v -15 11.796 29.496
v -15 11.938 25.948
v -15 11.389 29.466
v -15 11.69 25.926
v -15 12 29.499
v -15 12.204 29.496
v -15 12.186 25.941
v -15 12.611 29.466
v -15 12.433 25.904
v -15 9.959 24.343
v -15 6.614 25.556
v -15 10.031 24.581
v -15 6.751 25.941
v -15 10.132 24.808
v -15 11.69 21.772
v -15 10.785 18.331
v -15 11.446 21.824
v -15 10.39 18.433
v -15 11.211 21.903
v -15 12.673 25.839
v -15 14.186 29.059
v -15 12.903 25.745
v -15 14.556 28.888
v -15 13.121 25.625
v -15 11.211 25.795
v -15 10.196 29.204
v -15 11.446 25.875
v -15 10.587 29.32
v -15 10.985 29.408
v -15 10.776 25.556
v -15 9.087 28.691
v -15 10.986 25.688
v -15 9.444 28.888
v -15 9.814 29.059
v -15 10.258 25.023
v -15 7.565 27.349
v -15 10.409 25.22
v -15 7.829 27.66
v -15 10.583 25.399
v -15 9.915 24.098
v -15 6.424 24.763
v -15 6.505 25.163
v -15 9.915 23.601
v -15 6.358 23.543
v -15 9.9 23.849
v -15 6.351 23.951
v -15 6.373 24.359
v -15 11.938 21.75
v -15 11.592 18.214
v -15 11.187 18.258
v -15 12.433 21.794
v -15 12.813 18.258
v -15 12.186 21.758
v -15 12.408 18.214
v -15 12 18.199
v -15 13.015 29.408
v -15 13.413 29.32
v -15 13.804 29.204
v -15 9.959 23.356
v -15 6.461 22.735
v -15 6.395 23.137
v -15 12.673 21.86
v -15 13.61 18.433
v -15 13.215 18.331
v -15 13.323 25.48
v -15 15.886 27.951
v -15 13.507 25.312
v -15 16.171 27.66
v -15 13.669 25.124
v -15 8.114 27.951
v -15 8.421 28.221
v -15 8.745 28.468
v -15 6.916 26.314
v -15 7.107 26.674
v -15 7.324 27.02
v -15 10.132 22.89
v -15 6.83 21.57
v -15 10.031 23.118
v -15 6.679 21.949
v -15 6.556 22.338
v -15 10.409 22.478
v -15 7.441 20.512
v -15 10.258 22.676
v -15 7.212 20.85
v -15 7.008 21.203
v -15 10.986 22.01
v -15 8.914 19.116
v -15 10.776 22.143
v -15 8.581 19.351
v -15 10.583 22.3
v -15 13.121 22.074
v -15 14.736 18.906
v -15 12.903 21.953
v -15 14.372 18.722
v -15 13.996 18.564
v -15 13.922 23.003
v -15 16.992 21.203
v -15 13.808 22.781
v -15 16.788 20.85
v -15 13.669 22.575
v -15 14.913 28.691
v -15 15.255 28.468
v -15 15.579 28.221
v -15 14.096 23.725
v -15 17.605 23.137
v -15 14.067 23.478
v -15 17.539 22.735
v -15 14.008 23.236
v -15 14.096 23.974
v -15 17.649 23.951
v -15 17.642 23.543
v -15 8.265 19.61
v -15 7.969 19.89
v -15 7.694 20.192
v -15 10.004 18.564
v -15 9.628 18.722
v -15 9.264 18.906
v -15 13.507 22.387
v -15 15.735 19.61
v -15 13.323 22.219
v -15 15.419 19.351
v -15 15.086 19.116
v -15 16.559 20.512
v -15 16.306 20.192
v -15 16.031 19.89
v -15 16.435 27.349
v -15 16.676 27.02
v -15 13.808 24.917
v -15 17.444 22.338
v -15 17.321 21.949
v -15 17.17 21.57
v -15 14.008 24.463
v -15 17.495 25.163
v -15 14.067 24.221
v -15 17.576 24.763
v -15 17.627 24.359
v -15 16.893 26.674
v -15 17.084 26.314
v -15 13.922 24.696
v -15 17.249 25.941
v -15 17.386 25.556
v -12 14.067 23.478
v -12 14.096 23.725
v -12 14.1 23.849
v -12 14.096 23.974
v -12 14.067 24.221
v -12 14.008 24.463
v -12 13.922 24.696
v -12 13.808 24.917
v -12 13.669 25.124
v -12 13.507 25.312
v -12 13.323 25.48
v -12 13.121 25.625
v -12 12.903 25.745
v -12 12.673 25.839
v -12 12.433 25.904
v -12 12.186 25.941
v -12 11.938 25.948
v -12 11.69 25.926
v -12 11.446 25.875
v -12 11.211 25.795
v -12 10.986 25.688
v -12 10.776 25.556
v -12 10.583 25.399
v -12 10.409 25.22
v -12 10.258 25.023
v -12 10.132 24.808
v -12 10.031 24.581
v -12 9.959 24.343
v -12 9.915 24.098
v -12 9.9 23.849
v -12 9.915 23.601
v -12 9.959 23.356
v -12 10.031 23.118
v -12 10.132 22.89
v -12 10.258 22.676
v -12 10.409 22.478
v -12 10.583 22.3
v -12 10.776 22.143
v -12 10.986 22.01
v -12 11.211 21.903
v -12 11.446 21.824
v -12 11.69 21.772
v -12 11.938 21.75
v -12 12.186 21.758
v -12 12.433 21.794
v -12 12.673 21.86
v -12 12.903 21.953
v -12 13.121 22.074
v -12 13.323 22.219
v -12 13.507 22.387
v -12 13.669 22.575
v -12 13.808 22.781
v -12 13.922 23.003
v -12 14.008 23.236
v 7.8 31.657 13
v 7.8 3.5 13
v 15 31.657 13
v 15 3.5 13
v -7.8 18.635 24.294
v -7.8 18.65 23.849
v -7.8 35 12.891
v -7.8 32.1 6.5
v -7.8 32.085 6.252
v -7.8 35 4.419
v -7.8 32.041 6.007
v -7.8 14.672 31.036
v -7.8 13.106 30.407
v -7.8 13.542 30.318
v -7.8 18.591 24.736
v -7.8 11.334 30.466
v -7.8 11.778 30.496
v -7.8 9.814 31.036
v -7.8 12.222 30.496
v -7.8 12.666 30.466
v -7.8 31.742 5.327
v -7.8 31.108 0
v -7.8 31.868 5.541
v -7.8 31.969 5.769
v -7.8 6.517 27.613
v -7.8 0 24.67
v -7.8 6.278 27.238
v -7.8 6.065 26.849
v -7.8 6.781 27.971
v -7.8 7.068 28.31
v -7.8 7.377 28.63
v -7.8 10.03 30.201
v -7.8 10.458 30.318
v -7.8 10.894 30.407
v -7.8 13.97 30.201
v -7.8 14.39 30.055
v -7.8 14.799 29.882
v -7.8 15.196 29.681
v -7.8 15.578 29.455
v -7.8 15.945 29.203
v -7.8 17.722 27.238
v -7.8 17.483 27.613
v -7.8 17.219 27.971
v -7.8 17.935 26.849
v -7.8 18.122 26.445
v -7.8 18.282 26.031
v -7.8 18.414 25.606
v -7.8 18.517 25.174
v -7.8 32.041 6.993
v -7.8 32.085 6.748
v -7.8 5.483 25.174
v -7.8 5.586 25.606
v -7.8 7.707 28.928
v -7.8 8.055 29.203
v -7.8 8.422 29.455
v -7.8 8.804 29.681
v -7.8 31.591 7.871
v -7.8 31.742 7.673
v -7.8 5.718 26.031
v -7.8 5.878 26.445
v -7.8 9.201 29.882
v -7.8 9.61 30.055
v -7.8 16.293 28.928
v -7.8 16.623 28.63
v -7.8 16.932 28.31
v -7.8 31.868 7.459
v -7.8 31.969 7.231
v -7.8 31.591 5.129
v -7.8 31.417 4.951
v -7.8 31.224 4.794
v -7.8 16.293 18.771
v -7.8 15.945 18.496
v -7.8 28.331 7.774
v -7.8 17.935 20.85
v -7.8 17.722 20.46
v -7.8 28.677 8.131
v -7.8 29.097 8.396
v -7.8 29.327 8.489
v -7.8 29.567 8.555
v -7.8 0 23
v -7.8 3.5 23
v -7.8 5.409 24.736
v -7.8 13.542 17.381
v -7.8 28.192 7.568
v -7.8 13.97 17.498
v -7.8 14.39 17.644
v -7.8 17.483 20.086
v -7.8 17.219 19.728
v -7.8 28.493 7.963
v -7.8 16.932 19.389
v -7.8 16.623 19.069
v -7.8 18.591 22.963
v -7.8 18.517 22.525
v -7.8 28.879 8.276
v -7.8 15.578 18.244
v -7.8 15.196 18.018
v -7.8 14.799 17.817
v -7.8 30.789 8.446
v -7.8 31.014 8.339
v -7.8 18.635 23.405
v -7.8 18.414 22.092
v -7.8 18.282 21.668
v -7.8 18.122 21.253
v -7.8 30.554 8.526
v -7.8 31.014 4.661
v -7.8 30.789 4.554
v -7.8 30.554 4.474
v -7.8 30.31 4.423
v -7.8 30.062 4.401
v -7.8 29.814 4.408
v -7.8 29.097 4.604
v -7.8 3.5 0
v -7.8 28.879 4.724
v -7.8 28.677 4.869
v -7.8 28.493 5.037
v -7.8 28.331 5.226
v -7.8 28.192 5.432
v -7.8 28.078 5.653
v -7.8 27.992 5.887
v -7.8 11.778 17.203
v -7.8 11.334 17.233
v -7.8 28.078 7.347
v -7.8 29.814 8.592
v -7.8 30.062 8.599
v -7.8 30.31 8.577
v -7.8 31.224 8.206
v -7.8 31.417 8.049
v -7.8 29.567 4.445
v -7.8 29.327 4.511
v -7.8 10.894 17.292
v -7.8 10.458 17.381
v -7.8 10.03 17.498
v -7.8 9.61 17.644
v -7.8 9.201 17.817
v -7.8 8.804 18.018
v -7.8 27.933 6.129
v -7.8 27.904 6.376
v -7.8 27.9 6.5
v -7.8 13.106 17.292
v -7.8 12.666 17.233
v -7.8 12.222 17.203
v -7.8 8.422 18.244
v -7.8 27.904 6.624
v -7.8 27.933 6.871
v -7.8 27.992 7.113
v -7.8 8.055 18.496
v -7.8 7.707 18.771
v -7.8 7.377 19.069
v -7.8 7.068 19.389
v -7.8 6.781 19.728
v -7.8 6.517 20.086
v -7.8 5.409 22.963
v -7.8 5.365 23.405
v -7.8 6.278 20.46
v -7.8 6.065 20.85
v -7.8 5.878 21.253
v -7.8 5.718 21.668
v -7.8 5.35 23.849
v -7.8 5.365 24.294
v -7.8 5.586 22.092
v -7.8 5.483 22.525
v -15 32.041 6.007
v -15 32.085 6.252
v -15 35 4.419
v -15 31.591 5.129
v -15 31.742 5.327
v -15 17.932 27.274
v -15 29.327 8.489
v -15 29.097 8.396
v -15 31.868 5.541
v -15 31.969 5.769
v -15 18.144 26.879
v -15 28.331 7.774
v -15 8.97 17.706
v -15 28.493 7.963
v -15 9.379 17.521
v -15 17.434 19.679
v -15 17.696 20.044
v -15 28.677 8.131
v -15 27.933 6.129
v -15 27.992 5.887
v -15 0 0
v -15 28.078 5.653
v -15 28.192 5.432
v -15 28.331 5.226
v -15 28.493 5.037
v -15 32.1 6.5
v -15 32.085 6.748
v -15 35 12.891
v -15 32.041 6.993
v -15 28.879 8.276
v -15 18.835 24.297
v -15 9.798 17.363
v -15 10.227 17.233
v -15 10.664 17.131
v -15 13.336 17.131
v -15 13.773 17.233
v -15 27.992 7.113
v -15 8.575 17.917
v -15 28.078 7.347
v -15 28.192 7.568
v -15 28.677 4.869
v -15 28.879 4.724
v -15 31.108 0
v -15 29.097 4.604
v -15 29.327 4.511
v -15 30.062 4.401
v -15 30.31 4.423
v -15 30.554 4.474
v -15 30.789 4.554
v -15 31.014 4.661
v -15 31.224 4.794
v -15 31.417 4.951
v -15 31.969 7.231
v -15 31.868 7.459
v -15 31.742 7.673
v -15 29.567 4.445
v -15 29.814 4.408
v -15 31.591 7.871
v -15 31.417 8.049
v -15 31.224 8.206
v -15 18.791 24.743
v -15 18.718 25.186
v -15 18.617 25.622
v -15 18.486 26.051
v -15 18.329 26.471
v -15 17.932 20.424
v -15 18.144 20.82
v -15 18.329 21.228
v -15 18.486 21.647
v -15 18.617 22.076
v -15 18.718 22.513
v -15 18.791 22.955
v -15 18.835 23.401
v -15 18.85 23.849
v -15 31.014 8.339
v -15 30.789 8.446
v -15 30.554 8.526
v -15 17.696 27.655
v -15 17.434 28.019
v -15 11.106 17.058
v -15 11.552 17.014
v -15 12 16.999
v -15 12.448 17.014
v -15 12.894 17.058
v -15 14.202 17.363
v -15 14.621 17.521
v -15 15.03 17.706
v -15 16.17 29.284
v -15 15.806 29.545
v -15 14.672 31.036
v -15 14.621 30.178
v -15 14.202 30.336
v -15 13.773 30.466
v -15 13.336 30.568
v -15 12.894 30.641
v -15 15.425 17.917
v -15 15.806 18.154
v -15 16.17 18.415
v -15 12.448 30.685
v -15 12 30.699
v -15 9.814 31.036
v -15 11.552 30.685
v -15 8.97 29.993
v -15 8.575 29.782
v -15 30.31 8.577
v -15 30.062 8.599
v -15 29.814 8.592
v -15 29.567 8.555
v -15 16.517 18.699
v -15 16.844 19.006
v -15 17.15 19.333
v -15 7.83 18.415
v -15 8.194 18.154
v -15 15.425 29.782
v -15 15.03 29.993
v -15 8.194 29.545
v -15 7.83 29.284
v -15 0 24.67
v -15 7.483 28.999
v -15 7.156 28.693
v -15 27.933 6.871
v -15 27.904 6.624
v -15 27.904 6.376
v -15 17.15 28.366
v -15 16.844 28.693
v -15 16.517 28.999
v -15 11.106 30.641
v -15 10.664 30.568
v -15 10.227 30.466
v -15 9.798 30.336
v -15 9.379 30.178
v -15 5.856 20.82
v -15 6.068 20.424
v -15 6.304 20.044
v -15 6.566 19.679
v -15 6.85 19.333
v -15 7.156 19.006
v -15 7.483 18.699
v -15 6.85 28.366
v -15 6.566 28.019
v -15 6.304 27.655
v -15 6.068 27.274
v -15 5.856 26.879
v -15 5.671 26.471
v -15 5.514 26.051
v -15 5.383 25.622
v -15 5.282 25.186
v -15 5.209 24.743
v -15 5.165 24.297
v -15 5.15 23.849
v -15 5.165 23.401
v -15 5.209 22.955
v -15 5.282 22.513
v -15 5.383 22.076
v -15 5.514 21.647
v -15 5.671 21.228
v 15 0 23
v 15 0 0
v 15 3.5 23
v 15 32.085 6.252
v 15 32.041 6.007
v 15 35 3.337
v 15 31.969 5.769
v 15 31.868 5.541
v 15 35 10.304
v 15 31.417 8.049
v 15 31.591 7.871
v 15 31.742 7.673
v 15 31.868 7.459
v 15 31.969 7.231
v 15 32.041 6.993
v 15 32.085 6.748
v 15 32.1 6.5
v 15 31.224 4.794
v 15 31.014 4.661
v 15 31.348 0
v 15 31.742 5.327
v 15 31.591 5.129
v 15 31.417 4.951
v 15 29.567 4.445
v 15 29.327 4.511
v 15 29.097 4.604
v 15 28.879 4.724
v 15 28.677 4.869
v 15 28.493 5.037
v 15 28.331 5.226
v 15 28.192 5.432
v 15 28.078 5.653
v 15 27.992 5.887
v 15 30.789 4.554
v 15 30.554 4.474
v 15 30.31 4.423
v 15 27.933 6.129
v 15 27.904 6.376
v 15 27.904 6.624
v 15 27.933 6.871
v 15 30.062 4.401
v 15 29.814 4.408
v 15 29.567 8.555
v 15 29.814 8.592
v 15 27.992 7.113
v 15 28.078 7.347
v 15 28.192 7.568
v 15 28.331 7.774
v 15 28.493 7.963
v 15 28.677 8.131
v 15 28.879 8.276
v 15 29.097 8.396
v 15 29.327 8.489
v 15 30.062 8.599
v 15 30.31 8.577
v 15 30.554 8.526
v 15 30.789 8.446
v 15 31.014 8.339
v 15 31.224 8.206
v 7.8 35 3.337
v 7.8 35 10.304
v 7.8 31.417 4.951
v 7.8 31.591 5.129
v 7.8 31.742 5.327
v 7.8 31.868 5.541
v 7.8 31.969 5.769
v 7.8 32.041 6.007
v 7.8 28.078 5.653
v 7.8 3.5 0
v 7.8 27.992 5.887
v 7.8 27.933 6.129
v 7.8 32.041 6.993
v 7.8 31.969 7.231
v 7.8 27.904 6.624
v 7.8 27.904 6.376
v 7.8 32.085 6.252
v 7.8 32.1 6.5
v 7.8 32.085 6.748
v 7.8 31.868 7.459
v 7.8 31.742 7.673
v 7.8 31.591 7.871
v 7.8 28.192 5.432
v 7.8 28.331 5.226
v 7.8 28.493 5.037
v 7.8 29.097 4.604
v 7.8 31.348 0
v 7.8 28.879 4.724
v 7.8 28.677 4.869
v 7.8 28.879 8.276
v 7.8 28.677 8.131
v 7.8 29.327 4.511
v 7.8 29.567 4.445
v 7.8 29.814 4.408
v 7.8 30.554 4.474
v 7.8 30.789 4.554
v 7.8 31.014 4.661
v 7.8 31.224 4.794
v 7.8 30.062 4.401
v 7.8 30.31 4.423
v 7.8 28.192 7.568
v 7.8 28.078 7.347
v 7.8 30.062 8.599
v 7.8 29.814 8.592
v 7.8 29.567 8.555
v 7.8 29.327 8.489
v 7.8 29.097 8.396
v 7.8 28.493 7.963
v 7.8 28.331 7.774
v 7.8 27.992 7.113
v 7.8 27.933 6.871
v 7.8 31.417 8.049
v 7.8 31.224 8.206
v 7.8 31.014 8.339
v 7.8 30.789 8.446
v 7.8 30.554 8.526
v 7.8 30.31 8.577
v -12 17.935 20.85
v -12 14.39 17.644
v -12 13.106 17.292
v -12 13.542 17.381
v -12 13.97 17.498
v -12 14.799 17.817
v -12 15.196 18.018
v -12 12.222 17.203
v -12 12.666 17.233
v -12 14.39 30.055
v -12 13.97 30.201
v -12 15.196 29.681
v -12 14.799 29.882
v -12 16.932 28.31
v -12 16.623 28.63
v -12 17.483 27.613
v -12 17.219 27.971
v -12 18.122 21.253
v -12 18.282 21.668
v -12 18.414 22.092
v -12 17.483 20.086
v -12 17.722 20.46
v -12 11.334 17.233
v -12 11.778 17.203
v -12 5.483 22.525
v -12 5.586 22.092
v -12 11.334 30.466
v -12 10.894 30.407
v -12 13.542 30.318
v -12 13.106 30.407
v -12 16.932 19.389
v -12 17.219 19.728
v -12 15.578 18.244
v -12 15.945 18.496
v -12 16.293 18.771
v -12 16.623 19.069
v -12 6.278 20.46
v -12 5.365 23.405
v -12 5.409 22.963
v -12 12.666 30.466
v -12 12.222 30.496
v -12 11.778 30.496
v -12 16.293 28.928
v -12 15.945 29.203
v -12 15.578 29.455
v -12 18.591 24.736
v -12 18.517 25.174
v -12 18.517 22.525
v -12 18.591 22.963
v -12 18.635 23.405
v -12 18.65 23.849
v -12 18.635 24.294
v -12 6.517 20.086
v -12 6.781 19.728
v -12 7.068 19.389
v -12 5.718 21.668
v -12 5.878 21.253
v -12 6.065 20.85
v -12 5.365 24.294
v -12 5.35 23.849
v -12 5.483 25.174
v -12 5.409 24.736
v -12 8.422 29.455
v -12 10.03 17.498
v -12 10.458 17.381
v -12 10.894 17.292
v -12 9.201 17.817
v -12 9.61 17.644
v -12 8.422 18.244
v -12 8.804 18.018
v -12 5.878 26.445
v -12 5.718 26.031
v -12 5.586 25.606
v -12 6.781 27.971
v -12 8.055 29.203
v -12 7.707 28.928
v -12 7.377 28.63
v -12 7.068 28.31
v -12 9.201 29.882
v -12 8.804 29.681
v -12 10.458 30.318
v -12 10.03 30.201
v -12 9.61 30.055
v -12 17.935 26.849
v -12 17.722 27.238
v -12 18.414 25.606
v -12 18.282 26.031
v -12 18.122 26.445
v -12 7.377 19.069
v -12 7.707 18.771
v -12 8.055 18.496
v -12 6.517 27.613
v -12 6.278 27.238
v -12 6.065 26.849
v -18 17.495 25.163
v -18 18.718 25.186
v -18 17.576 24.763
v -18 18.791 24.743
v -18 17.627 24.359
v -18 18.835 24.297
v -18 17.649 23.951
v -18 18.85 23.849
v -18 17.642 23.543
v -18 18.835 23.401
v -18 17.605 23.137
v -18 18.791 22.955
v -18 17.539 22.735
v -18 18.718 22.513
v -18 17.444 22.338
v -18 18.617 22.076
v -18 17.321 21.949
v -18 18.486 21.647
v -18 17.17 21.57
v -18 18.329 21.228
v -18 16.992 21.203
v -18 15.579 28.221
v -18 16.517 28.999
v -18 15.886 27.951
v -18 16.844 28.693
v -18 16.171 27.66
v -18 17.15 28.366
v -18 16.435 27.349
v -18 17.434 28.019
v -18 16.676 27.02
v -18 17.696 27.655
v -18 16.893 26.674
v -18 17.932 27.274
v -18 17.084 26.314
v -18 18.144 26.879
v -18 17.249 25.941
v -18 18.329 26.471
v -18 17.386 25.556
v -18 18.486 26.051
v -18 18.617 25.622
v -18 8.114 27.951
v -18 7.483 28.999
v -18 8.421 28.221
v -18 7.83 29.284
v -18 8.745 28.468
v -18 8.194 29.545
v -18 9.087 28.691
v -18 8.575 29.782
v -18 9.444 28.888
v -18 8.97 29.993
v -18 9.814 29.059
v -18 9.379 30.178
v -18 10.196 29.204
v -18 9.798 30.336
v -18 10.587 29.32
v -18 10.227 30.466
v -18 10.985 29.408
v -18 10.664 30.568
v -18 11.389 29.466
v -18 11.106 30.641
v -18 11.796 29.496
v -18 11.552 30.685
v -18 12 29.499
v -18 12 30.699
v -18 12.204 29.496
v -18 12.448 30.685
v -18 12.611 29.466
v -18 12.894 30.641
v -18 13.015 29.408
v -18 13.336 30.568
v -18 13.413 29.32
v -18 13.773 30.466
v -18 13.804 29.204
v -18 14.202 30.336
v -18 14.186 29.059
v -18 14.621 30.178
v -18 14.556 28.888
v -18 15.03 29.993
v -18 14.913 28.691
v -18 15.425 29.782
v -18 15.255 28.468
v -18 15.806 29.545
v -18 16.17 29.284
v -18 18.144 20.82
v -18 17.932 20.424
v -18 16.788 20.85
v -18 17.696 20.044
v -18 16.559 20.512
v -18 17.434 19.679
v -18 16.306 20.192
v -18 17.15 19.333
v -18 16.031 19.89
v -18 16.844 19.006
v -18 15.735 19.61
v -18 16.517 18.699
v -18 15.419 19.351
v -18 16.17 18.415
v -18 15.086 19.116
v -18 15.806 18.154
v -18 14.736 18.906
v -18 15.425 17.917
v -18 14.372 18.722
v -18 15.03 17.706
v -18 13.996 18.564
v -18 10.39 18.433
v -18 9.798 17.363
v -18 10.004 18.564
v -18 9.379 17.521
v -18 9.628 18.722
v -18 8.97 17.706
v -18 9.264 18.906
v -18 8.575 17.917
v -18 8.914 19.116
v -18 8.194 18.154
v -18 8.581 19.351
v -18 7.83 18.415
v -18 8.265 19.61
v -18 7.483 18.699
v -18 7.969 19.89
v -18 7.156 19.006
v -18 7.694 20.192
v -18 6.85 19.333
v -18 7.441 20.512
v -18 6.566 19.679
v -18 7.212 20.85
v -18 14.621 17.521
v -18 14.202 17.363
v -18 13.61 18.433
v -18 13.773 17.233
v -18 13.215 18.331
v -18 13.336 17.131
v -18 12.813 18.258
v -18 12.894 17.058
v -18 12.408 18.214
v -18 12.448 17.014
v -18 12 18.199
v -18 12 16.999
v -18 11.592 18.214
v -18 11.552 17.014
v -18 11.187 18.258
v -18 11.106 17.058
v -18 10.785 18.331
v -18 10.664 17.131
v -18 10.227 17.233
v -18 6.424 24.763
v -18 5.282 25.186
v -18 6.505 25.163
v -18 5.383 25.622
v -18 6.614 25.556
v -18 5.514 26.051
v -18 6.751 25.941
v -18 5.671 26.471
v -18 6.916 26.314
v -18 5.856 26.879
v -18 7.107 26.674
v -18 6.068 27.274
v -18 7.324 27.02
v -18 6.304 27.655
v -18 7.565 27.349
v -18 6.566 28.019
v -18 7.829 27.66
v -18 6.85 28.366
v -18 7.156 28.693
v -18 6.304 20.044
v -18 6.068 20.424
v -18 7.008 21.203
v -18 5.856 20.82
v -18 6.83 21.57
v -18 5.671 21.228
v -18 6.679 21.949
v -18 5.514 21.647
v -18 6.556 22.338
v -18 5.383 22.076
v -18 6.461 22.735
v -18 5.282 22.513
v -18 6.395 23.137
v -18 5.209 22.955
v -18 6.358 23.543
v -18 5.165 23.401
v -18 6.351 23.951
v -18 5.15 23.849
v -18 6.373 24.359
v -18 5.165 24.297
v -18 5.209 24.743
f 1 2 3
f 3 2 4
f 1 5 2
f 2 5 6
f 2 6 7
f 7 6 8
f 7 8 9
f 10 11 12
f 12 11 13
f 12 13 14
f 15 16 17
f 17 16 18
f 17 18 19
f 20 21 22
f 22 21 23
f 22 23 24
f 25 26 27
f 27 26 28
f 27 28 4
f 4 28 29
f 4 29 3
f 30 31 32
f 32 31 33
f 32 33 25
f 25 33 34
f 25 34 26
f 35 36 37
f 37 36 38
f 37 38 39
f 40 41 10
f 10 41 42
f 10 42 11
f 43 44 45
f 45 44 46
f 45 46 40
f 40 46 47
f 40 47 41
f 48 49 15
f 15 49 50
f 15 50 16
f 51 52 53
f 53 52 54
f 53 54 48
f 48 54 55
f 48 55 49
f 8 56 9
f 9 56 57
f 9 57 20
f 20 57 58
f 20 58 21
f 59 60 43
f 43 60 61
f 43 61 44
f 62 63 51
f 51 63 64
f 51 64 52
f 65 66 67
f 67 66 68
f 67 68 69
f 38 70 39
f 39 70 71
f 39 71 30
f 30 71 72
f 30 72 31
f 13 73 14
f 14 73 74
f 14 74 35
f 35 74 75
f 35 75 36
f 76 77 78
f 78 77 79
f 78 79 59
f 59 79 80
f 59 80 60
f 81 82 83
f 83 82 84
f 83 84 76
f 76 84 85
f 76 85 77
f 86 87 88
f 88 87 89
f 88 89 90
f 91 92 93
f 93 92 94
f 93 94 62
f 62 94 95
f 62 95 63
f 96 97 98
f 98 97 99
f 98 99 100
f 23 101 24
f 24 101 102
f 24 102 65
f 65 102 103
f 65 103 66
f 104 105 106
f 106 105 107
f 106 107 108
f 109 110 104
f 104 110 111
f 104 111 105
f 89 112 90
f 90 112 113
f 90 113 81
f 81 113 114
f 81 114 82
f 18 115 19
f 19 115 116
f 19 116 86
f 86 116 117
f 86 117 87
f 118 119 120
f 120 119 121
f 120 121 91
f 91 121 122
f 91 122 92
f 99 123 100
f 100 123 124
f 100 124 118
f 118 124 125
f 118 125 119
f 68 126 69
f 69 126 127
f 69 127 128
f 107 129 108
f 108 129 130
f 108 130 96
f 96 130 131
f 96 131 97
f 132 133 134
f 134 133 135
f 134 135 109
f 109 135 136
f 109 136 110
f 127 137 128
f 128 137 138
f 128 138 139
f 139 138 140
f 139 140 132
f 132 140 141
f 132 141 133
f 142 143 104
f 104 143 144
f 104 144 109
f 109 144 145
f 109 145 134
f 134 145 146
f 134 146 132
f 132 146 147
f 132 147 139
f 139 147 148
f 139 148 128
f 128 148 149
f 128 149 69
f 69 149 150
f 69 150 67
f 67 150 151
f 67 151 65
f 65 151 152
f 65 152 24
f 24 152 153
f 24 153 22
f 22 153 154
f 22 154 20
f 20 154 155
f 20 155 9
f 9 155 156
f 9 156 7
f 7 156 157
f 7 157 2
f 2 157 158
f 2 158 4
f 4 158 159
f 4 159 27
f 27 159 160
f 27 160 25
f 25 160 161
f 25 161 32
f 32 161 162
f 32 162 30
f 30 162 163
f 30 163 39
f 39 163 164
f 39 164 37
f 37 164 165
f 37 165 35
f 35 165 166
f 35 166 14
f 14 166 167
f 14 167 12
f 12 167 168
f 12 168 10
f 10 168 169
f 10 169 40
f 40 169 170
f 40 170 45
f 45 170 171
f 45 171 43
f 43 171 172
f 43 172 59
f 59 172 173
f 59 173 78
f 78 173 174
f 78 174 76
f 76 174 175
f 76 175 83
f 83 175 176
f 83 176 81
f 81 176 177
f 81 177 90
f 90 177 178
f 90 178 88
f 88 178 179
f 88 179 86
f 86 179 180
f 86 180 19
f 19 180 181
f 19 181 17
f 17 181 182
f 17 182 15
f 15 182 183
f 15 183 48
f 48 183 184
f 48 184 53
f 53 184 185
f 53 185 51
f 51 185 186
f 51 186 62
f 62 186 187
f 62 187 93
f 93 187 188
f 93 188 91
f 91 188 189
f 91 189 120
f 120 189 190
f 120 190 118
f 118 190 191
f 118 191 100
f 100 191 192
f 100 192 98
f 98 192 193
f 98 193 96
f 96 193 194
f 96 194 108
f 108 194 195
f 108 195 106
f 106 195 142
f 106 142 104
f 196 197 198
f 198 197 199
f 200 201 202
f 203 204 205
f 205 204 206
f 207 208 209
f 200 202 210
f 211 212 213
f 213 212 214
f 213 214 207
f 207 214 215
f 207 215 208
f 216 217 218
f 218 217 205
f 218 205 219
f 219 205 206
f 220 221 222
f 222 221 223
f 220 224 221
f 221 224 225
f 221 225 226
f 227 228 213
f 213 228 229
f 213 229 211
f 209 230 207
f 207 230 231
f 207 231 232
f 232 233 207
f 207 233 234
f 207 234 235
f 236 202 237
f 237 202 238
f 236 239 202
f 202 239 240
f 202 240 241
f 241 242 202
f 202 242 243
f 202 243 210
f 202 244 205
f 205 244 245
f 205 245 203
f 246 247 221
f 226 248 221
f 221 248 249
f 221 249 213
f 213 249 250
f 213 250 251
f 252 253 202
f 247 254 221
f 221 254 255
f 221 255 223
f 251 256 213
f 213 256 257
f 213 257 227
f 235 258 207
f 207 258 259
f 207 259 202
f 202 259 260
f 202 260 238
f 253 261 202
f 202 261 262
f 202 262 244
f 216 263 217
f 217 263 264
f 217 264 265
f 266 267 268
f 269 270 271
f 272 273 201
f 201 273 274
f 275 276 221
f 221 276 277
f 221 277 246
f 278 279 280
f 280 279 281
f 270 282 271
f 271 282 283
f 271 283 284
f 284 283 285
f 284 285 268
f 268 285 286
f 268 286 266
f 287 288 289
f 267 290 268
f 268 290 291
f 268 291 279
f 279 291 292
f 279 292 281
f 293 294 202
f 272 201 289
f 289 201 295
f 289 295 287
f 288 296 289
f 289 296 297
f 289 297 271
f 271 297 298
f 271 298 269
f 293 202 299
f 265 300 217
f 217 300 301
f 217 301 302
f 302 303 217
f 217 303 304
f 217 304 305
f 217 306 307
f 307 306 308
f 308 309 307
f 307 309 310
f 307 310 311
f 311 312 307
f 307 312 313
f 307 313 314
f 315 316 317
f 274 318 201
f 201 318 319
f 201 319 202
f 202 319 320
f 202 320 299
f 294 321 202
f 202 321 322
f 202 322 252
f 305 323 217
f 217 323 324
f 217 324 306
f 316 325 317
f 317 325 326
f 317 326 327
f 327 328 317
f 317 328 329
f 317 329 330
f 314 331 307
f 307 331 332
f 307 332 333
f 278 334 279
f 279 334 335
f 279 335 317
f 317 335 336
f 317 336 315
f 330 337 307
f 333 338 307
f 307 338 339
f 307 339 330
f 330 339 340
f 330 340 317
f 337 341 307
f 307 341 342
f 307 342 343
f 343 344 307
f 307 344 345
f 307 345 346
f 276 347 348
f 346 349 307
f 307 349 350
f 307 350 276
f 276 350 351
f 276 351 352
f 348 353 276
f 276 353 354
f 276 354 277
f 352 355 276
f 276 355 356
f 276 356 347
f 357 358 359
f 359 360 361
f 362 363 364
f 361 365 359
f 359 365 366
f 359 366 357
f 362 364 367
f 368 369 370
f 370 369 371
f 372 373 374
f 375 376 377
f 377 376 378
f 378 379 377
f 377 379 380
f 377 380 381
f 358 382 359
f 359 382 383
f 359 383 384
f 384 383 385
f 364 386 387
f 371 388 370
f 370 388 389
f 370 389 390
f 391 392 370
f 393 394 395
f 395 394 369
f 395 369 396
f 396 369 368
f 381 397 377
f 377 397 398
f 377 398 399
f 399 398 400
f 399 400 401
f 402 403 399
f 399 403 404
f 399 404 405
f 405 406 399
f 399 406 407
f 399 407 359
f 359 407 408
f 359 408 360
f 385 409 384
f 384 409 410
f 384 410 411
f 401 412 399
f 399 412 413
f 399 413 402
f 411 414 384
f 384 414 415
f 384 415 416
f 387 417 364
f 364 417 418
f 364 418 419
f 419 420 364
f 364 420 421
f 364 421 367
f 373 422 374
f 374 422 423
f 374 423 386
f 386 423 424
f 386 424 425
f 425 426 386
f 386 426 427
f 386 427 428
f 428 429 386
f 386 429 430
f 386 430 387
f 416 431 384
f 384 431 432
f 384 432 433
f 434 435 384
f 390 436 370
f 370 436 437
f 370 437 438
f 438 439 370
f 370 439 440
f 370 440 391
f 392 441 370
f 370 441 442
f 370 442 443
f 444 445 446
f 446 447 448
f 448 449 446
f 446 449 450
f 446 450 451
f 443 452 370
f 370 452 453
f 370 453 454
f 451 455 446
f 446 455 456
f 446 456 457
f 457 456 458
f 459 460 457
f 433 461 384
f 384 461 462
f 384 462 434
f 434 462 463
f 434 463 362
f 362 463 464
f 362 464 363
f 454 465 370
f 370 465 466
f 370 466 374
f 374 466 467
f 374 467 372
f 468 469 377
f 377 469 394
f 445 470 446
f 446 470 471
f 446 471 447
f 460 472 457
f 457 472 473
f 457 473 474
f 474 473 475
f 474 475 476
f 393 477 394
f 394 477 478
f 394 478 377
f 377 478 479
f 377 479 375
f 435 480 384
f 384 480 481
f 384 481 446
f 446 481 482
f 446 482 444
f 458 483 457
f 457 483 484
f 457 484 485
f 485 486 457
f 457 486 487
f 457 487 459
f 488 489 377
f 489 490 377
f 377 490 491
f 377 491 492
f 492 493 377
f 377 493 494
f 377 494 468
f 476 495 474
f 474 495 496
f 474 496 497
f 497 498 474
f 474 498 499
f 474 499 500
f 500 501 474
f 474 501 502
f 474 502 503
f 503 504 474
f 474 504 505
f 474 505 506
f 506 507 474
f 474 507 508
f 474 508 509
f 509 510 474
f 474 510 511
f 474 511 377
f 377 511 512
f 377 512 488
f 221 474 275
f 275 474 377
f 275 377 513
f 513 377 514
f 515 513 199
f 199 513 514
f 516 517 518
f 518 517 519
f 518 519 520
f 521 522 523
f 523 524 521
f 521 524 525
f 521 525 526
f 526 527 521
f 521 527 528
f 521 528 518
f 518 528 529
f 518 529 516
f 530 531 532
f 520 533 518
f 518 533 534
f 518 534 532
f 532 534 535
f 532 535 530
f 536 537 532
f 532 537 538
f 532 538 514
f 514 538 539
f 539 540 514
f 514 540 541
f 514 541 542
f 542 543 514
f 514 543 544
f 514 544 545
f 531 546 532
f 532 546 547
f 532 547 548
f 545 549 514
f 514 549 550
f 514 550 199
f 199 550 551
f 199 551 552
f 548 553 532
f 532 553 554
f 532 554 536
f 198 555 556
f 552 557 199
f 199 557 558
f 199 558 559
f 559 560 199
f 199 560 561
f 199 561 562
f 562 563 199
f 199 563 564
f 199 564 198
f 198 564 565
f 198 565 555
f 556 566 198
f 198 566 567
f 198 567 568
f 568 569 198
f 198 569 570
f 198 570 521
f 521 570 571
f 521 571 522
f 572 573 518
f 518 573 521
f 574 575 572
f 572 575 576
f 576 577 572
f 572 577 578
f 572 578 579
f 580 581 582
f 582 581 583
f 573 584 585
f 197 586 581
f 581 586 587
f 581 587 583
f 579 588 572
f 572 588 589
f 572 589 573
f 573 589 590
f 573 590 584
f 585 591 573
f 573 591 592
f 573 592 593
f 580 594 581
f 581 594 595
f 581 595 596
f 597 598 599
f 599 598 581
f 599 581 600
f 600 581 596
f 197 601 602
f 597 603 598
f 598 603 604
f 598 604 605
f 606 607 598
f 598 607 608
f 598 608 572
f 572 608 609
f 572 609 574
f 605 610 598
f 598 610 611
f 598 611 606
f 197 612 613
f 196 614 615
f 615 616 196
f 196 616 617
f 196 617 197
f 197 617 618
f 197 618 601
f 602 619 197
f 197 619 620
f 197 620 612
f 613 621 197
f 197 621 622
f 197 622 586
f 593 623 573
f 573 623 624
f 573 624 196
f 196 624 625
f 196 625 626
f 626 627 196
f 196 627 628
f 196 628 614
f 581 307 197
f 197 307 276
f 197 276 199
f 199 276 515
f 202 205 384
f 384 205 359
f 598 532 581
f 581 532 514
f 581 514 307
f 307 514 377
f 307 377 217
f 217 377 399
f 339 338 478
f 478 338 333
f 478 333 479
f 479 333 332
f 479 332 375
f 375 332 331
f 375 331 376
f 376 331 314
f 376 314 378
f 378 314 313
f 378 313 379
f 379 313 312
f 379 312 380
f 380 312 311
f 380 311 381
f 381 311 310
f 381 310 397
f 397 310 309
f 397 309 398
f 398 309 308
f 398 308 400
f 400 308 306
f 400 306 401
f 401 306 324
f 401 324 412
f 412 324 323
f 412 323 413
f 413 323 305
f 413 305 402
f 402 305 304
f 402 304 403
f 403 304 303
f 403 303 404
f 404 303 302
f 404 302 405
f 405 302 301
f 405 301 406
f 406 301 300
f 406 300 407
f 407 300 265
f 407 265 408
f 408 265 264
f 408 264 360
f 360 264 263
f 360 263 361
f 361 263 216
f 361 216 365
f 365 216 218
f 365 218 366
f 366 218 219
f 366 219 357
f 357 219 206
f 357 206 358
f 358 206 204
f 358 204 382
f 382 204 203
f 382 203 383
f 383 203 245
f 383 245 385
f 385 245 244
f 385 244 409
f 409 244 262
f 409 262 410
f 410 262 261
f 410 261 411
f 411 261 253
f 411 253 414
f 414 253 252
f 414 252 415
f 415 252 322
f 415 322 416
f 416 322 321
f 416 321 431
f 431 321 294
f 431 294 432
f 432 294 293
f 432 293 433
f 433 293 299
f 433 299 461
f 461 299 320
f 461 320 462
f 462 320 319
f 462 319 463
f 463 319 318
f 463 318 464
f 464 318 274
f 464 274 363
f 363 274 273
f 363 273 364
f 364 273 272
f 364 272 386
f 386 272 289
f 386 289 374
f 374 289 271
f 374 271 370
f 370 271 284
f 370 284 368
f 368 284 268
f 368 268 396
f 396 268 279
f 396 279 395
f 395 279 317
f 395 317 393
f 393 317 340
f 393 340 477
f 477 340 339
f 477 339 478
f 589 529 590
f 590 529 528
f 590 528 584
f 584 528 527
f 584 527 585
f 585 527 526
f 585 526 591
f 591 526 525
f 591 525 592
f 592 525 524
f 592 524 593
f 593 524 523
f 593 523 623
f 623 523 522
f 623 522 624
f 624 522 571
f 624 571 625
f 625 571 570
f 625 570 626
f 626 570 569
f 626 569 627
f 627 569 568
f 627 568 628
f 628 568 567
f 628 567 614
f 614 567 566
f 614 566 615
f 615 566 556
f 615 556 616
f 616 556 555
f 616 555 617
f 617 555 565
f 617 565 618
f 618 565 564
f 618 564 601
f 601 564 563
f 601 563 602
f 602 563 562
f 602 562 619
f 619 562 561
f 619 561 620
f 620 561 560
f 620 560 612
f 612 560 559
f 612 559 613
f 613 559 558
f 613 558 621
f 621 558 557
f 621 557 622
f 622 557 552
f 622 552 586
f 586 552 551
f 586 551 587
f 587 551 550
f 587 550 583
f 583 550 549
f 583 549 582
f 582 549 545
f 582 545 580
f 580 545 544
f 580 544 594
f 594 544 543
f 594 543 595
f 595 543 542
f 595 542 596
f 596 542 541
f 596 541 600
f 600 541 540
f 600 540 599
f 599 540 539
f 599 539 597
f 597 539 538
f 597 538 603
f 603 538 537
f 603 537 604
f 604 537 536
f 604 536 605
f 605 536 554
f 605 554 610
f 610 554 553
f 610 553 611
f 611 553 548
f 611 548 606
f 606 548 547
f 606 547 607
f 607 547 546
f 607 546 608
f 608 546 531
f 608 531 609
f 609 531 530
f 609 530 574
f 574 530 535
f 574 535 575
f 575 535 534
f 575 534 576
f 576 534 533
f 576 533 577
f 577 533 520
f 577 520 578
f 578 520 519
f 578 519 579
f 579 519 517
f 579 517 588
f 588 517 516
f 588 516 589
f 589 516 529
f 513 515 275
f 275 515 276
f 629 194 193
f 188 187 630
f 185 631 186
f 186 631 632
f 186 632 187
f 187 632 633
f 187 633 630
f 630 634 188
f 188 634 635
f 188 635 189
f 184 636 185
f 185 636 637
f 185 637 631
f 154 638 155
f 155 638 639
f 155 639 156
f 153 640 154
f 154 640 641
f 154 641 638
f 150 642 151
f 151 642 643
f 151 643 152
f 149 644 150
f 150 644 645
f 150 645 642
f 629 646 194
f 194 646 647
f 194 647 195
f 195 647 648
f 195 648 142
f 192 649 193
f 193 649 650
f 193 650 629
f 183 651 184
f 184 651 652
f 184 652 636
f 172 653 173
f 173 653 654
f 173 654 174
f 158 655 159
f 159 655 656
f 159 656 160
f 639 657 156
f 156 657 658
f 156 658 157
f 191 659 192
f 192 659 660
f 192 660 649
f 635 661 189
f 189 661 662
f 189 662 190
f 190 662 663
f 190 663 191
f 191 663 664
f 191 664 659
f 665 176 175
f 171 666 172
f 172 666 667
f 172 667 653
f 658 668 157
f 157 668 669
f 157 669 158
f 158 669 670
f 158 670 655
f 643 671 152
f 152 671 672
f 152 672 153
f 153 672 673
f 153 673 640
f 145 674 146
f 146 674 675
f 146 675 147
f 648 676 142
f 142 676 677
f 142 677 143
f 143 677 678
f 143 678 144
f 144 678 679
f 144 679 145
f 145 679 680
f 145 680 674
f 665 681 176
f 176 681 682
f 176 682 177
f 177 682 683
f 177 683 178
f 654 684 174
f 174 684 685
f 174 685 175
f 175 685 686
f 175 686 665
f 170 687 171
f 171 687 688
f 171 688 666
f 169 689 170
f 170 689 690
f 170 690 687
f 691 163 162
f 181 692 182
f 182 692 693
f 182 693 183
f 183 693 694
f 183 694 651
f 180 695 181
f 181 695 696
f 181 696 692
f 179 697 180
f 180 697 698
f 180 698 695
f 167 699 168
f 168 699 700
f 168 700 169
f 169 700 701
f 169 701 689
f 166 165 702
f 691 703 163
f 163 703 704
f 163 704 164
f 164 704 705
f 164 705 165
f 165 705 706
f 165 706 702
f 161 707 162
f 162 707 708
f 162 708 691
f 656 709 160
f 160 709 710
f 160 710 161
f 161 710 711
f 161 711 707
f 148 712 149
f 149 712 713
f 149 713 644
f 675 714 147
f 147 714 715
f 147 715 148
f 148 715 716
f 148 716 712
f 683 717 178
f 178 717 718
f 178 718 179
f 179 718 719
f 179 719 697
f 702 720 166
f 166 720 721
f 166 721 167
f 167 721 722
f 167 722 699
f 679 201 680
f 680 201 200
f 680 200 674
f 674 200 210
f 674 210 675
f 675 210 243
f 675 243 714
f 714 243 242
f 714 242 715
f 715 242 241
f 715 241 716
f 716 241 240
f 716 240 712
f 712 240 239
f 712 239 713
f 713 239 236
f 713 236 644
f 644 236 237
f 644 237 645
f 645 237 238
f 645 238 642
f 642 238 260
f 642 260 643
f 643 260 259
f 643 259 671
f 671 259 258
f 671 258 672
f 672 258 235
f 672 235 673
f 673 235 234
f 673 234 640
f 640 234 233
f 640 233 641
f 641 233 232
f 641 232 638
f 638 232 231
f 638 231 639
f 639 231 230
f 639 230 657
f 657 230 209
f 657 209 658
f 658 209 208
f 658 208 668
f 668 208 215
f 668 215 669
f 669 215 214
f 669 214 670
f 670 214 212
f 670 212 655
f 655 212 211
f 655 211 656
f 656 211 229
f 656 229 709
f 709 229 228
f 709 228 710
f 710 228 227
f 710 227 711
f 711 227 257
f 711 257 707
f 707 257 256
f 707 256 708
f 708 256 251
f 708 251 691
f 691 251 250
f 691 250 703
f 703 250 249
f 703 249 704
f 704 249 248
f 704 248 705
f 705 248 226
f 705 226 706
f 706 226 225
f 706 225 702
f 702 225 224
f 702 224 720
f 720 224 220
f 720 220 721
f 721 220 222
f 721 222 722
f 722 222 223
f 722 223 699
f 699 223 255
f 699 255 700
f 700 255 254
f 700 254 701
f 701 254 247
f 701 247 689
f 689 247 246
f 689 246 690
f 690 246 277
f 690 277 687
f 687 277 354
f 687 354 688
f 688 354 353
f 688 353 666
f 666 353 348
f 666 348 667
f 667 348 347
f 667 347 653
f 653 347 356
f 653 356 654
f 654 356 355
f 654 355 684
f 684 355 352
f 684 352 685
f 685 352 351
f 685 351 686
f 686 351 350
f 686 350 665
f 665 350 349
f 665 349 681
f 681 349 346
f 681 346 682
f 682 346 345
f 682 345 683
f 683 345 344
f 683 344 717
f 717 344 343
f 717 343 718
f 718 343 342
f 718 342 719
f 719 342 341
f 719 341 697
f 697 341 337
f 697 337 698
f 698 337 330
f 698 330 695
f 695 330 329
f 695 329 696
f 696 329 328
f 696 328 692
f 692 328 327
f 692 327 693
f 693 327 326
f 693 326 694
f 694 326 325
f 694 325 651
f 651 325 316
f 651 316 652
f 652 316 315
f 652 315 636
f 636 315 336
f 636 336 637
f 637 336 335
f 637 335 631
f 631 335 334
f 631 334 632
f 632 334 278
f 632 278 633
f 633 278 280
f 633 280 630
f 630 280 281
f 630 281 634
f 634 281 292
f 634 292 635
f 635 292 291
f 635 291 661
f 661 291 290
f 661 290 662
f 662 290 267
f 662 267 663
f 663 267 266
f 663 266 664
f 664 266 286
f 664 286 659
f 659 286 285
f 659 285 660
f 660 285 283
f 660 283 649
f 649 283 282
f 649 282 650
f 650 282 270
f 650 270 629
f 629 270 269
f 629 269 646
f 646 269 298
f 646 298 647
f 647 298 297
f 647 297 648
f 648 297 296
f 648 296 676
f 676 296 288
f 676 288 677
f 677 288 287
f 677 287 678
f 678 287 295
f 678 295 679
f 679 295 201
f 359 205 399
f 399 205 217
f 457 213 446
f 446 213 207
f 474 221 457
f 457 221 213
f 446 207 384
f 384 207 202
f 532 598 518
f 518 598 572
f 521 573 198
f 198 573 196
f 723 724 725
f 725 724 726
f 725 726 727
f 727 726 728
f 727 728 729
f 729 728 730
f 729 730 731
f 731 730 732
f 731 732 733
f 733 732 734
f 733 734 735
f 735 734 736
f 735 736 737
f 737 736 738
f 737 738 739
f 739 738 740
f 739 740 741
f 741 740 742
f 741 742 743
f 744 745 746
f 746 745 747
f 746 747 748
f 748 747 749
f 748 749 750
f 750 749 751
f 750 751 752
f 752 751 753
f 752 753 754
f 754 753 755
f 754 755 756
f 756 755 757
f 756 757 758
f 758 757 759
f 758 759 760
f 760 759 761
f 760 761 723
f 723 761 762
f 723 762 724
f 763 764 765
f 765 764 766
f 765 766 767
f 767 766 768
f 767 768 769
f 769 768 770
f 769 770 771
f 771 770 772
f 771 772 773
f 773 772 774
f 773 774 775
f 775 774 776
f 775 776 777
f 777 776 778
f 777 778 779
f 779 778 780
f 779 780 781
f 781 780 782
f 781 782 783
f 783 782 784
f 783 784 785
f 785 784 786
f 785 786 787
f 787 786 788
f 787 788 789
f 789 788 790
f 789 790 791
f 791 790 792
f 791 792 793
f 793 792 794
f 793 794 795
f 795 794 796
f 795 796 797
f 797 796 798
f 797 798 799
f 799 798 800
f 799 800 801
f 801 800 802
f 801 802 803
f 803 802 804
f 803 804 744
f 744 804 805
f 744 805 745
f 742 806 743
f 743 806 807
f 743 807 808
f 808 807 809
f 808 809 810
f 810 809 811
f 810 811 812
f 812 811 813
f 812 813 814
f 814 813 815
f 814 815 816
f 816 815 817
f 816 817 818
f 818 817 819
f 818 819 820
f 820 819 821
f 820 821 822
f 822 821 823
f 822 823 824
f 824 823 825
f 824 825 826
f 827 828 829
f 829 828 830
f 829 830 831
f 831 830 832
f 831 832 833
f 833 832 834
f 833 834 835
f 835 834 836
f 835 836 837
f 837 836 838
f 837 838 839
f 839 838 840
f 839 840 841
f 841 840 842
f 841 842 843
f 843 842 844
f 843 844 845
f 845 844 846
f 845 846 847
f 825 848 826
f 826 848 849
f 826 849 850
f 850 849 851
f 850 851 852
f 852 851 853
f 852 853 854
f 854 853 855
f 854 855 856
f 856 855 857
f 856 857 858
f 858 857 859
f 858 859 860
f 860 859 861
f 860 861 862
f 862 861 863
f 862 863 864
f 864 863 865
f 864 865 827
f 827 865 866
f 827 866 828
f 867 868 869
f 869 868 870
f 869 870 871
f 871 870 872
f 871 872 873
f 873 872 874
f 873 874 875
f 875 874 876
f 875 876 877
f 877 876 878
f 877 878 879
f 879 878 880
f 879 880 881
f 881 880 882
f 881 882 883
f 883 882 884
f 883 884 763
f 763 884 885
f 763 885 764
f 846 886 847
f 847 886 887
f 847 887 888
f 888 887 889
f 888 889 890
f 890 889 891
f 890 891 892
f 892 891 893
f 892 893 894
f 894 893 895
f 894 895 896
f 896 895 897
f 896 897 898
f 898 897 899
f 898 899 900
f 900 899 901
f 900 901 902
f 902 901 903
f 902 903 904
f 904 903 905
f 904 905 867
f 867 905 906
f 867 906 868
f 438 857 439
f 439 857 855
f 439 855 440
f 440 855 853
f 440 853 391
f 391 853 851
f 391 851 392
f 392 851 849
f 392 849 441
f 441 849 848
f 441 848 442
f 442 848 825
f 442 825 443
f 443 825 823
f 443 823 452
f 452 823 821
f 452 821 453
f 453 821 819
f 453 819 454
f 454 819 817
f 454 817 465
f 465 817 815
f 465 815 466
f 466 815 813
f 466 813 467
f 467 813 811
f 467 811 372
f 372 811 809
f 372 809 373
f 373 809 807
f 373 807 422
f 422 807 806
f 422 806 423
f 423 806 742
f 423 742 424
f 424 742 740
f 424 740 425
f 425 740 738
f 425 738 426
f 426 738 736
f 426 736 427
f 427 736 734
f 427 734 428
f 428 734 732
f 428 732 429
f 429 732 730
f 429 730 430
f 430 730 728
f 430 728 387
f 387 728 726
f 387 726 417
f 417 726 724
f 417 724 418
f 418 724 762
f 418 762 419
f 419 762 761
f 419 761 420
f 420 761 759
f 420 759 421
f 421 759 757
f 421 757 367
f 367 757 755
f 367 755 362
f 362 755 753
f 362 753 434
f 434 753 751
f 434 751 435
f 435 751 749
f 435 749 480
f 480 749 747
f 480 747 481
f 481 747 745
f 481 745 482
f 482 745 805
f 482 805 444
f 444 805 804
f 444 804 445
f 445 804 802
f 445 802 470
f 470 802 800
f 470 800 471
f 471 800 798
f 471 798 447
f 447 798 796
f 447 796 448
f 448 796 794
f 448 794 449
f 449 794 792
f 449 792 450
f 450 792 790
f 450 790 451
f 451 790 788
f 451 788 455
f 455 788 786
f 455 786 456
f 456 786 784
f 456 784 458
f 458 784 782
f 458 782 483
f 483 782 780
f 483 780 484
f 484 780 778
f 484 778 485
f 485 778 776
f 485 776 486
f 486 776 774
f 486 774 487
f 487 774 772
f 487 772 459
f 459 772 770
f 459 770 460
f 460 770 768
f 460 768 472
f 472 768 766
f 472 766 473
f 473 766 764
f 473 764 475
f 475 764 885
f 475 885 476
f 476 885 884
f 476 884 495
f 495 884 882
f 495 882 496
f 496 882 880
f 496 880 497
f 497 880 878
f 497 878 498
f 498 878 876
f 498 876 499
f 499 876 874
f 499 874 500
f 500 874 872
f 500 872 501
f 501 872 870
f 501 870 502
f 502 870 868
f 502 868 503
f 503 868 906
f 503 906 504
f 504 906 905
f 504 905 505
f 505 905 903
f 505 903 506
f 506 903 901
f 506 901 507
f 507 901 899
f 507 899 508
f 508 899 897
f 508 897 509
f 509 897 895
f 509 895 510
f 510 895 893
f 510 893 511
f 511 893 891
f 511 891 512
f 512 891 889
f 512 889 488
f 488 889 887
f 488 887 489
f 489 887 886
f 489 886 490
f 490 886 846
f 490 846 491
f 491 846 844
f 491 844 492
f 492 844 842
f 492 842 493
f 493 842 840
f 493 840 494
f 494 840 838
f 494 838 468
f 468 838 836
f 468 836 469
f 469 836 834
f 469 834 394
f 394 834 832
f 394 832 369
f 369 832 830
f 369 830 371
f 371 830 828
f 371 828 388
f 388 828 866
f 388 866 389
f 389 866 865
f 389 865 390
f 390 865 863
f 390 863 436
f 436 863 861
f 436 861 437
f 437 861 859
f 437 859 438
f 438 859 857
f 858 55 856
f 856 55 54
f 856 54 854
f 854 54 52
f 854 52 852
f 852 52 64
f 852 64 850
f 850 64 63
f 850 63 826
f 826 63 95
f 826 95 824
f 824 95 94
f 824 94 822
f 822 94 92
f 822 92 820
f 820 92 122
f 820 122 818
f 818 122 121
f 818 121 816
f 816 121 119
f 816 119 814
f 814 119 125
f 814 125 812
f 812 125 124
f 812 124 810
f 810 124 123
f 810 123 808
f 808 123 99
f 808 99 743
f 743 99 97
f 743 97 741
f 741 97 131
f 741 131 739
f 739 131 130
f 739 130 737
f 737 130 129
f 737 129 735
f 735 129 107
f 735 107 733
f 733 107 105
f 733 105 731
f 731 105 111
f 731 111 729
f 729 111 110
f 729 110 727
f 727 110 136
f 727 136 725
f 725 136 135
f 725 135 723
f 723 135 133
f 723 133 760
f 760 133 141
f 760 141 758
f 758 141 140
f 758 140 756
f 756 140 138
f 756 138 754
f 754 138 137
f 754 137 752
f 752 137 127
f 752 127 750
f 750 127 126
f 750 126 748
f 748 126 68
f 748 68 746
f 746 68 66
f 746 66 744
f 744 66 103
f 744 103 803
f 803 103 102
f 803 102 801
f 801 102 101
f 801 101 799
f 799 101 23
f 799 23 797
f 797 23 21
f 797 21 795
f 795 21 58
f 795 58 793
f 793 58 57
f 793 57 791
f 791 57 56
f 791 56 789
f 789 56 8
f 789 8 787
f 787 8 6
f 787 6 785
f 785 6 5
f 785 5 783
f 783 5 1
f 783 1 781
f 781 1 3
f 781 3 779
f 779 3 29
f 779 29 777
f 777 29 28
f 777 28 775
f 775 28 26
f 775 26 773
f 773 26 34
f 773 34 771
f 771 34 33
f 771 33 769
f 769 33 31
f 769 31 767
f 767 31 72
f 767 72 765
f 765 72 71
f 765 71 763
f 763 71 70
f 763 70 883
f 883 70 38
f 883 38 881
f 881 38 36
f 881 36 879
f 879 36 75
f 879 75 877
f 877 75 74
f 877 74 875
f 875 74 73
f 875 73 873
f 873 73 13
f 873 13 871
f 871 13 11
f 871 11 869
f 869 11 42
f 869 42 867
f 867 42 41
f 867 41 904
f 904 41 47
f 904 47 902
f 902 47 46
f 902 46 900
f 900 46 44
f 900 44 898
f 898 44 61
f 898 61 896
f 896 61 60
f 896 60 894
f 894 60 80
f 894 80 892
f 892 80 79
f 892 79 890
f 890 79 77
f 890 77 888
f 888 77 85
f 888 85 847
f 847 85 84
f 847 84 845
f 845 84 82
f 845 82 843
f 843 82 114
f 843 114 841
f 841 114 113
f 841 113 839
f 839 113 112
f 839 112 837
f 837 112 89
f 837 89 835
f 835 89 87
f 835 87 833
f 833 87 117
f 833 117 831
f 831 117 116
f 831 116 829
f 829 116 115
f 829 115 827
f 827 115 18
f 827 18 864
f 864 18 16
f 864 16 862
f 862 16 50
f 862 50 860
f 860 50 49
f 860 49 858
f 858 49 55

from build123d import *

# Parameters (mm, degrees)
EXTRUDE_3_DEPTH     = 13
SKETCH_5_R          = 2.1
CUT_EXTRUDE_2_DEPTH = 48.895720059
SKETCH_6_W          = 7.2
SKETCH_6_H          = 35
EXTRUDE_4_DEPTH     = 20
SKETCH_7_R          = 2.1
CUT_EXTRUDE_3_DEPTH = 20
SKETCH_8_W          = 22.8
SKETCH_8_H          = 3.5
EXTRUDE_5_DEPTH     = 10
SKETCH_9_R          = 6.65
CUT_EXTRUDE_4_DEPTH = 4.2
CUT_EXTRUDE_5_DEPTH = 10
CUT_EXTRUDE_6_DEPTH = 10
SKETCH_14_R         = 6.85
SKETCH_14_R_2       = 5.65
EXTRUDE_7_DEPTH     = 3


with BuildPart() as part:
    # 草图4 → 凸台-拉伸3 (new body)
    with BuildSketch(Plane.XY):
        Polygon((15, 0), (-15, 0), (-15, 35), (-7.8, 35), (-7.8, 3.5), (7.8, 3.5), (7.8, 35), (15, 35), align=None)
    extrude(amount=EXTRUDE_3_DEPTH)

    # 草图5 → 切除-拉伸2 (cut, through all)
    with BuildSketch(Plane(origin=(15, 0, 0), x_dir=(0, 0, -1), z_dir=(1, 0, 0))):
        with Locations(Location((-6.5, 30, 0), (0, 0, 90))):
            Circle(SKETCH_5_R)
    extrude(amount=-CUT_EXTRUDE_2_DEPTH, mode=Mode.SUBTRACT)

    # 草图6 → 凸台-拉伸4 (add)
    with BuildSketch(Plane.XY.offset(13)):
        with Locations((-11.4, 17.5)):
            Rectangle(SKETCH_6_W, SKETCH_6_H)
    extrude(amount=EXTRUDE_4_DEPTH)

    # 草图7 → 切除-拉伸3 (cut)
    with BuildSketch(Plane.ZY.offset(15)):
        with Locations(Location((23.849351573, 12, 0), (0, 0, 270))):
            Circle(SKETCH_7_R)
    extrude(amount=-CUT_EXTRUDE_3_DEPTH, mode=Mode.SUBTRACT)

    # 草图8 → 凸台-拉伸5 (add)
    with BuildSketch(Plane.XY.offset(13)):
        with Locations((3.6, 1.75)):
            Rectangle(SKETCH_8_W, SKETCH_8_H)
    extrude(amount=EXTRUDE_5_DEPTH)

    # 草图9 → 切除-拉伸4 (cut)
    with BuildSketch(Plane(origin=(-7.8, 0, 0), x_dir=(0, 0, -1), z_dir=(1, 0, 0))):
        with Locations(Location((-23.849351573, 12, 0), (0, 0, 90))):
            Circle(SKETCH_9_R)
    extrude(amount=-CUT_EXTRUDE_4_DEPTH, mode=Mode.SUBTRACT)

    # 草图10 → 切除-拉伸5 (cut)
    with BuildSketch(Plane.ZY.offset(15)):
        Polygon((12.890771142, 35), (31.03620252, 14.67169088), (31.03620252, 9.814342957), (24.670130024, 0), (33, 0), (33, 10.134215088), (33, 35), align=None)
        Polygon((0, 35), (0, 31.107929111), (4.419316467, 35), align=None)
    extrude(amount=-CUT_EXTRUDE_5_DEPTH, mode=Mode.SUBTRACT)

    # 草图11 → 切除-拉伸6 (cut)
    with BuildSketch(Plane(origin=(15, 0, 0), x_dir=(0, 0, -1), z_dir=(1, 0, 0))):
        Polygon((-3.336766509, 35), (0, 31.348169844), (0, 35), align=None)
        Polygon((-10.303751585, 35), (-13, 35), (-13, 31.657050955), align=None)
    extrude(amount=-CUT_EXTRUDE_6_DEPTH, mode=Mode.SUBTRACT)

    # 草图14 → 凸台-拉伸7 (add)
    with BuildSketch(Plane.ZY.offset(15)):
        with Locations(Location((23.849351573, 12, 0), (0, 0, 180))):
            Circle(SKETCH_14_R)
        with Locations((23.849351573, 12)):
            Circle(SKETCH_14_R_2, mode=Mode.SUBTRACT)
    extrude(amount=EXTRUDE_7_DEPTH)


solid = part.part
